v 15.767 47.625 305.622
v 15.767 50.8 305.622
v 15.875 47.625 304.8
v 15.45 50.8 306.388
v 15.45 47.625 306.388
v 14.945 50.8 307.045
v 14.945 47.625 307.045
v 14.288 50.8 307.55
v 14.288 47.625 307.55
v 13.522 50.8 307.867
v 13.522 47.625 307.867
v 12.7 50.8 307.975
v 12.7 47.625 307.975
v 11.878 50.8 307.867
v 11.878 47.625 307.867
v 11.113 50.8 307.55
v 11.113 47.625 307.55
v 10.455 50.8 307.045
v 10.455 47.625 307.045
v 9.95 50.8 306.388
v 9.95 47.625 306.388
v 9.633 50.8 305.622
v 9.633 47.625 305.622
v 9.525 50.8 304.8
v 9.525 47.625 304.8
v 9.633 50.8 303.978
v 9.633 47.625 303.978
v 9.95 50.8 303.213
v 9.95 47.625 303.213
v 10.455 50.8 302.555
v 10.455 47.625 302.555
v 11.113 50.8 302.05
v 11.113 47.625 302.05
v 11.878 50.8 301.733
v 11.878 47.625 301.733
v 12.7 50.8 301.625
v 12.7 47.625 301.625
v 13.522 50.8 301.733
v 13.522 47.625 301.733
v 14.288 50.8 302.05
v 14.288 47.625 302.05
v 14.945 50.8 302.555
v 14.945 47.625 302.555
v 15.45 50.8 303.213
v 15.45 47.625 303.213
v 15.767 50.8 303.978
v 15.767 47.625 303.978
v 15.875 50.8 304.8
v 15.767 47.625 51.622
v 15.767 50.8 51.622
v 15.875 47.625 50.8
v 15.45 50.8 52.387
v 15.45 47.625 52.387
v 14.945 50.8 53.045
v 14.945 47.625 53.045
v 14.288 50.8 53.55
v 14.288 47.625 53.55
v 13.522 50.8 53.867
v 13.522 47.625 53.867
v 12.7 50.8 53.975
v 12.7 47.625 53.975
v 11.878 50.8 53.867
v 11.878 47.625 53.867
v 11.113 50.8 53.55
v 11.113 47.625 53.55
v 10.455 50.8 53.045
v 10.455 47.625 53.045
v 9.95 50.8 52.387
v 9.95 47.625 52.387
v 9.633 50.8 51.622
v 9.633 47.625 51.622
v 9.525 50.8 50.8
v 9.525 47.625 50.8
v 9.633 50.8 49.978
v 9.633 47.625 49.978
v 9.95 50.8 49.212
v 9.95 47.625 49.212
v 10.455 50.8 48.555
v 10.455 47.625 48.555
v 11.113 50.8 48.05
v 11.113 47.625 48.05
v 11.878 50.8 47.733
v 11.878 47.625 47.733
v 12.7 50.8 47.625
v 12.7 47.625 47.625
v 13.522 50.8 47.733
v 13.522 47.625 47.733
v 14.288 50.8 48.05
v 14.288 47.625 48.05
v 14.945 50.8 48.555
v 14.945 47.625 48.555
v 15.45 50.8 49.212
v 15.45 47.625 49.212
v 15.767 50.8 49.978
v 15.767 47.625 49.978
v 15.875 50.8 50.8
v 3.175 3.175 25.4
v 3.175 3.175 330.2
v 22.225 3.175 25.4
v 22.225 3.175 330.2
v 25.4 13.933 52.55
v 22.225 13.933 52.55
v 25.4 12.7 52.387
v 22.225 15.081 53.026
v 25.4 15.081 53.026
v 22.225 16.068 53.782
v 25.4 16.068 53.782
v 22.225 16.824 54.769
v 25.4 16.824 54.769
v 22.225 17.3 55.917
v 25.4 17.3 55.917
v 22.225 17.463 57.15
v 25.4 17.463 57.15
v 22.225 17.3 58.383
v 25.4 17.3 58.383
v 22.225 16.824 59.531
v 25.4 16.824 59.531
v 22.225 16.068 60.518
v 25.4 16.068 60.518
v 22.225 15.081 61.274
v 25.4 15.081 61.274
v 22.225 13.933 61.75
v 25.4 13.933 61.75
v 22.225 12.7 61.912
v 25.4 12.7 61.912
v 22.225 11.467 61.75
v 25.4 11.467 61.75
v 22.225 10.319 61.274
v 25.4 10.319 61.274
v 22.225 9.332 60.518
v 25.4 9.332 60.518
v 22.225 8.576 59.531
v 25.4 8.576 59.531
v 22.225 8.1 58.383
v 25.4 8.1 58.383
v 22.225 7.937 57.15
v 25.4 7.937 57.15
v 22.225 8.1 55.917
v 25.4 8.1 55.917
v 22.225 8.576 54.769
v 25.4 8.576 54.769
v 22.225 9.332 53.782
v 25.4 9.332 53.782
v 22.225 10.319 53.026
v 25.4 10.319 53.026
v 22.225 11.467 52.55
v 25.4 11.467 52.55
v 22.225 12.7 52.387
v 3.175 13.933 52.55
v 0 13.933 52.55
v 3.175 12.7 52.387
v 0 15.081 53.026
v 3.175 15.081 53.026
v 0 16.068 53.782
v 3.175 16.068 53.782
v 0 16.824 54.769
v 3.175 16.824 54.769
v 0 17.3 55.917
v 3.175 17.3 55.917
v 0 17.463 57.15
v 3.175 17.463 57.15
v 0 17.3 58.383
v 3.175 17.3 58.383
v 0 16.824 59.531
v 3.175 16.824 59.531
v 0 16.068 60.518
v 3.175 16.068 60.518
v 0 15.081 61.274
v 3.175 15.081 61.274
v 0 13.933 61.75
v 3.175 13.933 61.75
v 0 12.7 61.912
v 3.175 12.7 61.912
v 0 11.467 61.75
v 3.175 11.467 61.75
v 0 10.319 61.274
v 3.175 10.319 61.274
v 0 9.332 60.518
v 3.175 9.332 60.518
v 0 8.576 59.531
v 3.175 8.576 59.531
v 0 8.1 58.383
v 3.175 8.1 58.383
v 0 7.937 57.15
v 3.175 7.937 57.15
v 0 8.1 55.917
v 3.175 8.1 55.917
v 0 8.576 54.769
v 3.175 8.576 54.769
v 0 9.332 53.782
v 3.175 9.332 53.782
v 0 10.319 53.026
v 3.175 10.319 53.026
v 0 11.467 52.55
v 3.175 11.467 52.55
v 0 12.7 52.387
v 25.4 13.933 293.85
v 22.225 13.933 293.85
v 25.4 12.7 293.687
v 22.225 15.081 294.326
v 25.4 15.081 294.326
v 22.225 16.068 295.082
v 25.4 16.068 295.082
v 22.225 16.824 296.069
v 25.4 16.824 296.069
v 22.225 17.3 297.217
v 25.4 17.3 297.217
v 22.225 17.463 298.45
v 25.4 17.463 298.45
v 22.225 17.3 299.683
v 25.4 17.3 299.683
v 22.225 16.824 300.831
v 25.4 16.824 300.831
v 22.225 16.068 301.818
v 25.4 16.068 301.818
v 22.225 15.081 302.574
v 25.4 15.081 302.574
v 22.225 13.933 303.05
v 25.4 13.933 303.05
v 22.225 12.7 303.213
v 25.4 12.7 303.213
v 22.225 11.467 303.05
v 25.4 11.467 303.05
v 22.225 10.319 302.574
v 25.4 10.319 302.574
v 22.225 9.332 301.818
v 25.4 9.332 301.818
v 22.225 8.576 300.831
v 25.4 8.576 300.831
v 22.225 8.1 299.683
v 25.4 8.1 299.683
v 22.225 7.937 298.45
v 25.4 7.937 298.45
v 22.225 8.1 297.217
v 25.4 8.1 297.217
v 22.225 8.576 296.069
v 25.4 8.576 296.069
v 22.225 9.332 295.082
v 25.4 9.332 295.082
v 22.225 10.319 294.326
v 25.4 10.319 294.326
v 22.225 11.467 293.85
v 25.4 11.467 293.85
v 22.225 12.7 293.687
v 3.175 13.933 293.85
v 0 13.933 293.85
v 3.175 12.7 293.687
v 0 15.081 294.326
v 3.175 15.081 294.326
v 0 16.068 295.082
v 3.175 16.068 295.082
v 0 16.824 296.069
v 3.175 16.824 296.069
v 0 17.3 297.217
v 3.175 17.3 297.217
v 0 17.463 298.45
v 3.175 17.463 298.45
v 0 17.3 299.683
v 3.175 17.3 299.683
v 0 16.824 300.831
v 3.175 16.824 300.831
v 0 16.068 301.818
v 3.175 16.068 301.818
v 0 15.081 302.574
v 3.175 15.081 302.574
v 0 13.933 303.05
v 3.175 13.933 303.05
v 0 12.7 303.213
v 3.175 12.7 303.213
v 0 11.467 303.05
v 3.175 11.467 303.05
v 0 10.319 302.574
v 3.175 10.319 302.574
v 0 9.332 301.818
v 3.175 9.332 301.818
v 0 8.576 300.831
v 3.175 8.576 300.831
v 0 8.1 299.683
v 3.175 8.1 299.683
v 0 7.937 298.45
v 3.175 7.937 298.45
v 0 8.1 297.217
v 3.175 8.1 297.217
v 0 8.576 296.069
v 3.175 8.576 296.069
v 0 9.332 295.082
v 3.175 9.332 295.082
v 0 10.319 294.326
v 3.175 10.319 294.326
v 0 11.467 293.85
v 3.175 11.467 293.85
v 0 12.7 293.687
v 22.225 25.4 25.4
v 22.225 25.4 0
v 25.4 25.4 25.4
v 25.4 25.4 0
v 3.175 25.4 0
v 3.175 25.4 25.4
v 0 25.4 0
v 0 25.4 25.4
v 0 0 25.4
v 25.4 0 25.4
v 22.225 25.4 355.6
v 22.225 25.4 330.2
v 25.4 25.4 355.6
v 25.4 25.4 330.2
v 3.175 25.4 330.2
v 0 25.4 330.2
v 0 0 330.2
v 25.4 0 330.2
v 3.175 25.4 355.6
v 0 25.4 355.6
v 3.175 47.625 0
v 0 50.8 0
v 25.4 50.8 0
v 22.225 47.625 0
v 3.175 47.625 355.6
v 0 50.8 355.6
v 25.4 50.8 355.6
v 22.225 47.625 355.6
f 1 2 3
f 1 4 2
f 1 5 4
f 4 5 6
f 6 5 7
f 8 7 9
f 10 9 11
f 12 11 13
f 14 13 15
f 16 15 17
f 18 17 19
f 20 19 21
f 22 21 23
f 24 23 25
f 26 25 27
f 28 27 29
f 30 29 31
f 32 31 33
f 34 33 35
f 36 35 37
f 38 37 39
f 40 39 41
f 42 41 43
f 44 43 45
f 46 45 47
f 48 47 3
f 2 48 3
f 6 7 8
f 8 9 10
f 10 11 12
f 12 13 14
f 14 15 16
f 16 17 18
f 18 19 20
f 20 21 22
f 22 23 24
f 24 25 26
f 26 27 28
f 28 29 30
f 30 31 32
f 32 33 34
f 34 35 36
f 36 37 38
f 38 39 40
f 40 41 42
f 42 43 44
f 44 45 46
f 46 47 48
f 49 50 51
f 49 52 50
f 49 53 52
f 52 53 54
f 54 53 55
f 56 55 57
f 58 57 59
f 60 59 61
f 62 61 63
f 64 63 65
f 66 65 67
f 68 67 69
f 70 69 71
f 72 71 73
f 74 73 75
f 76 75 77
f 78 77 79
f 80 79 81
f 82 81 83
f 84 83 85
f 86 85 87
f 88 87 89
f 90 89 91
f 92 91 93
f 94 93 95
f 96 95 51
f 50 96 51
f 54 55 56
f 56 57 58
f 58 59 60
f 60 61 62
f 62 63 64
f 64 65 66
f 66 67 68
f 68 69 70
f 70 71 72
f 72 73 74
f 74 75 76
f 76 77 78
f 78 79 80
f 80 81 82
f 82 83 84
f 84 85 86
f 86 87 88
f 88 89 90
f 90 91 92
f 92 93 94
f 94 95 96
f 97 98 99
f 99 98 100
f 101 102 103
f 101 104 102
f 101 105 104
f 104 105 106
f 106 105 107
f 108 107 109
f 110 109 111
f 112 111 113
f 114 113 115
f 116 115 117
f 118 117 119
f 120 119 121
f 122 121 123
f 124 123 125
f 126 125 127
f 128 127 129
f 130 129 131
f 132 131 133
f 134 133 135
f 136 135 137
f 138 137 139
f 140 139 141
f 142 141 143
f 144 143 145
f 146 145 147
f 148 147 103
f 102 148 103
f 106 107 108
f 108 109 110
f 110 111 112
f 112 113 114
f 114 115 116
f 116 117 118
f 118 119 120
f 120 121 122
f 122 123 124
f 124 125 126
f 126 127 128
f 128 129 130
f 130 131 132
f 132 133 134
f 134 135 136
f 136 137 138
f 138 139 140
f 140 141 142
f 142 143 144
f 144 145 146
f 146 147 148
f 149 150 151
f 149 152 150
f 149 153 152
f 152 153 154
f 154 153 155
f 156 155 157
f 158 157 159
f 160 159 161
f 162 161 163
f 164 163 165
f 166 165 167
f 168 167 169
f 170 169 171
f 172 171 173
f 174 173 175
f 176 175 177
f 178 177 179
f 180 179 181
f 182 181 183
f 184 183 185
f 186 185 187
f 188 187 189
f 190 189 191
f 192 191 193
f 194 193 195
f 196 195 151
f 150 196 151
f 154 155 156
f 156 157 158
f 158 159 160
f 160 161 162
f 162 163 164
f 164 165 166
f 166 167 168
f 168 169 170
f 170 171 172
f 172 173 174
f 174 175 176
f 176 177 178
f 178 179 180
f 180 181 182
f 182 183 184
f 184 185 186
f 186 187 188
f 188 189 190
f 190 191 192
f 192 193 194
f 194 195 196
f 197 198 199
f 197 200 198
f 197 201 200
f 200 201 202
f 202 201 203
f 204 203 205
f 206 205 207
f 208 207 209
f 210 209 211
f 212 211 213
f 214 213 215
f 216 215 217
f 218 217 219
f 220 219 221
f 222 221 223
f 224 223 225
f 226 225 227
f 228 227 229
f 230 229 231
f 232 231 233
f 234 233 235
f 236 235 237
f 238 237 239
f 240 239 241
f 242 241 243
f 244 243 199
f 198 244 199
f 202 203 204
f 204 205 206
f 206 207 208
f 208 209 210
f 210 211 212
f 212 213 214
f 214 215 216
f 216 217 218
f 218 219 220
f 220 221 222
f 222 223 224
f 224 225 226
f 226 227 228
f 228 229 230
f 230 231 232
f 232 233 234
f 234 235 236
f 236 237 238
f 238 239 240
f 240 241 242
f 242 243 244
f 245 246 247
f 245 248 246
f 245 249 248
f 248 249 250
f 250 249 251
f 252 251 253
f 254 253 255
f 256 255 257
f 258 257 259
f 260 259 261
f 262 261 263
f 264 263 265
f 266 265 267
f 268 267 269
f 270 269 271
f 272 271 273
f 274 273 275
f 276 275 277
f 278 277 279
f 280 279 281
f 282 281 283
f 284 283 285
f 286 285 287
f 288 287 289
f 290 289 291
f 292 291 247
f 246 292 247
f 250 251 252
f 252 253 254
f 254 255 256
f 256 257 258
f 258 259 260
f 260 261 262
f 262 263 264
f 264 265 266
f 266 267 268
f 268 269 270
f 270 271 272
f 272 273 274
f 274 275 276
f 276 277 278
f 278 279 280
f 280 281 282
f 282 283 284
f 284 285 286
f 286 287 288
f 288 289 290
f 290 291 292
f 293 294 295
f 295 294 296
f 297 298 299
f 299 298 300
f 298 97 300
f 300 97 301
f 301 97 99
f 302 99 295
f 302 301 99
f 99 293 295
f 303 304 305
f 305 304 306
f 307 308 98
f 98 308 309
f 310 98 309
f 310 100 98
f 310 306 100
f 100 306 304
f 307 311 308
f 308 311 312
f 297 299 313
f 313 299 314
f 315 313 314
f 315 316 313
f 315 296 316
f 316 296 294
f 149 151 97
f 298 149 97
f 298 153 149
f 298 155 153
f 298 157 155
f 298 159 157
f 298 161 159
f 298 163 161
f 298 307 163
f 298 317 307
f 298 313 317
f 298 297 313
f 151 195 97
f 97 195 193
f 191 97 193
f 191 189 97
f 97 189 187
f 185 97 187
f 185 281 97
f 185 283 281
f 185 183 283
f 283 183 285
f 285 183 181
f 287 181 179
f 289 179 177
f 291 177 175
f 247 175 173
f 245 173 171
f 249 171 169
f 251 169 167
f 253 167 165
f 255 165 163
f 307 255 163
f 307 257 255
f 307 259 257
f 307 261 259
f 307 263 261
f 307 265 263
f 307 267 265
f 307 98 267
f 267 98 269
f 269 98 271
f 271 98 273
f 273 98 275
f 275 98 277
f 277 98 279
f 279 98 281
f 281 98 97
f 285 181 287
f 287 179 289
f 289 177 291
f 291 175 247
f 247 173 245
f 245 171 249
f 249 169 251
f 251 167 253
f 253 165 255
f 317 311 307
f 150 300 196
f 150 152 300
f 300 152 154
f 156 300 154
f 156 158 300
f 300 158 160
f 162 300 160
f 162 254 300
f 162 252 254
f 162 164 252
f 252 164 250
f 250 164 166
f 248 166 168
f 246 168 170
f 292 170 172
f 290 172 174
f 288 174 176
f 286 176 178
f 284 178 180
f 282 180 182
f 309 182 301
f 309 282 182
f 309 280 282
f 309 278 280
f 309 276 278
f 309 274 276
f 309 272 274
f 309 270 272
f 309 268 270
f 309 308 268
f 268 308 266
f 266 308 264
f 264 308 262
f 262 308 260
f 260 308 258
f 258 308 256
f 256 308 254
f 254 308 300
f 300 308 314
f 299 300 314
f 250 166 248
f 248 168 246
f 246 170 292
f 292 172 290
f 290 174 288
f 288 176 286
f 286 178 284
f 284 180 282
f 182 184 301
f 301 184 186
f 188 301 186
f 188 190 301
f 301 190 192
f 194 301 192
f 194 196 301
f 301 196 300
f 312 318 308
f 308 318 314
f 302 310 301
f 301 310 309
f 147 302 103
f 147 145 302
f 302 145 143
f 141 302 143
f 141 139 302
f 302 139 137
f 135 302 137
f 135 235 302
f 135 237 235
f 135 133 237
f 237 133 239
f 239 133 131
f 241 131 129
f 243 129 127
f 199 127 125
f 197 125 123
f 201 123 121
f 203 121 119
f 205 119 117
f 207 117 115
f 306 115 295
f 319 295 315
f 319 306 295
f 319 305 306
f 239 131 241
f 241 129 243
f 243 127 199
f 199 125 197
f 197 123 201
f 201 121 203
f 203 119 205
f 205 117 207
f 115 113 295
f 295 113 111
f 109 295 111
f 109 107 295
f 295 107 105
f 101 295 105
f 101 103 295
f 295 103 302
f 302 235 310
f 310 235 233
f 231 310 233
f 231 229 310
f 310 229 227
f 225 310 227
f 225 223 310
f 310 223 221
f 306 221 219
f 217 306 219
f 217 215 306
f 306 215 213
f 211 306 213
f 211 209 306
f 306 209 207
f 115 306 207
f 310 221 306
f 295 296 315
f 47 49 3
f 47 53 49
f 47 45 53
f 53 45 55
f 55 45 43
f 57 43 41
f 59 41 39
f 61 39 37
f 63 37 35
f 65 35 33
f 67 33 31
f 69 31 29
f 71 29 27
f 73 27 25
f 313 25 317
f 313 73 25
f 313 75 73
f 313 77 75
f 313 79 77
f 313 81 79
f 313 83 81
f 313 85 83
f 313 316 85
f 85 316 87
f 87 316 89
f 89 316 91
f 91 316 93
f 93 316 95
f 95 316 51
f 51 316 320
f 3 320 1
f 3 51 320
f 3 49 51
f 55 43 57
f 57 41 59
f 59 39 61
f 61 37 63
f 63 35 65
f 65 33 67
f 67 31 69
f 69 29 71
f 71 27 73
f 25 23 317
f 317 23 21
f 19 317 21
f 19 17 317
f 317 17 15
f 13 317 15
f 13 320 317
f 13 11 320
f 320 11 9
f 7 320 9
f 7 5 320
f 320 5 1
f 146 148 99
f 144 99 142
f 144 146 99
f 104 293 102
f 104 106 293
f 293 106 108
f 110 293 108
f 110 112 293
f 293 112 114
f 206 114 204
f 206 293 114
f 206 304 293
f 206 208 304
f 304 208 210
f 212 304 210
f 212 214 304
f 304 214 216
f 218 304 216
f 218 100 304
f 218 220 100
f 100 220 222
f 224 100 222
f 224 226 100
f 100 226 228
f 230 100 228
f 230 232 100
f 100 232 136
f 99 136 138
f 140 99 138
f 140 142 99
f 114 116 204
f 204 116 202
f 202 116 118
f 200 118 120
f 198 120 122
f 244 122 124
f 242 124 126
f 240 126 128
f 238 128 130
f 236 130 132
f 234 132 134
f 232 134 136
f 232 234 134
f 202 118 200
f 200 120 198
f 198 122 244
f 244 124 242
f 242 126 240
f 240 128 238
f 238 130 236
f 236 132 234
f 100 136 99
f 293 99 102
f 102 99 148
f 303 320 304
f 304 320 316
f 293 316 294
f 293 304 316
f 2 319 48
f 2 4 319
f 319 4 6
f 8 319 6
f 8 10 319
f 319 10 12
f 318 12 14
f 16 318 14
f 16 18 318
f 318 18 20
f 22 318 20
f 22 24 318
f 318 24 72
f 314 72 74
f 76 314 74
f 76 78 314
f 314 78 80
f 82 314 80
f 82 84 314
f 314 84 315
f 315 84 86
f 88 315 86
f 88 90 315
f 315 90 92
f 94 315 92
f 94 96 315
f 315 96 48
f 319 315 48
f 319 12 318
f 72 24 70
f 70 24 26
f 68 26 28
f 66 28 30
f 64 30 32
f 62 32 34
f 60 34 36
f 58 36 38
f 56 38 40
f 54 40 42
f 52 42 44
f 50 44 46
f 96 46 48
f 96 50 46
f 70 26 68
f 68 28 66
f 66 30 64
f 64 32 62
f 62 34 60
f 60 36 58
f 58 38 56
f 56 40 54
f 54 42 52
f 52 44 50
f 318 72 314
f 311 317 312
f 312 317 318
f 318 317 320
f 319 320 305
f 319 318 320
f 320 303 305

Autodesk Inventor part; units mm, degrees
ref_plane "YZ Plane" through (0, 0, 0) normal (1, 0, 0) x (0, 1, 0)
ref_plane "XZ Plane" through (0, 0, 0) normal (0, 1, 0) x (-1, 0, 0)
ref_plane "XY Plane" through (0, 0, 0) normal (0, 0, 1) x (1, 0, 0)
sketch "Sketch1" plane through (0, 0, 0) normal (0, 0, 1) x (1, 0, 0)
  line L0 (0, 0) -> (25.4, 0)
  line L1 (25.4, 0) -> (25.4, 50.8)
  line L2 (25.4, 50.8) -> (0, 50.8)
  line L3 (0, 50.8) -> (0, 0)
  dimension "d0" = 25.4
  dimension "d1" = 50.8
extrude "Extrusion1" add sketch "Sketch1" along normal blind 355.6
shell "Shell1" thickness 3.175 removed faces 2 at (16.9333, 16.9333, 0) at (8.4667, 33.8667, 355.6)
sketch "Sketch2" plane through (25.4, 0, 0) normal (1, 0, 0) x (0, 0, -1)
  line L0 (-355.6, 0) -> (-330.2, 0)
  line L1 (-330.2, 0) -> (-330.2, 25.4)
  line L2 (-330.2, 25.4) -> (-355.6, 25.4)
  line L3 (-355.6, 25.4) -> (-355.6, 0)
  line L4 (0, 0) -> (-25.4, 0)
  line L5 (-25.4, 0) -> (-25.4, 25.4)
  line L6 (-25.4, 25.4) -> (0, 25.4)
  line L7 (0, 25.4) -> (0, 0)
  dimension "d5" = 25.4
extrude "Extrusion2" cut sketch "Sketch2" against normal through all
sketch "Sketch3" plane through (25.4, 50.8, 355.6) normal (1, 0, 0) x (0, 0, -1)
  line L0 (330.2, -50.8) -> (330.2, -25.4) projected
  line L1 (25.4, -25.4) -> (25.4, -50.8) projected
  line L2 (330.2, -50.8) -> (25.4, -50.8) projected
  circle A0 centre (57.15, -38.1) radius 4.7625
  circle A1 centre (298.45, -38.1) radius 4.7625
  point P0 (355.6, -50.8)
  dimension "d8" = 9.525
  dimension "d9" = 31.75
  dimension "d10" = 12.7
  dimension "d11" = 12.7
  dimension "d12" = 31.75
extrude "Extrusion3" cut sketch "Sketch3" against normal through all
sketch "Sketch4" plane through (0, 50.8, 0) normal (0, 1, 0) x (1, 0, 0)
  line L0 (0, -355.6) -> (25.4, -355.6)
  line L1 (25.4, 0) -> (0, 0) projected
  line L2 (0, 0) -> (0, -355.6) projected
  circle A0 centre (12.7, -50.8) radius 3.175
  circle A1 centre (12.7, -304.8) radius 3.175
  line L3 (12.7, 0) -> (12.7, -50.8) construction
  line L4 (12.7, -50.8) -> (12.7, -304.8) construction
  line L5 (12.7, -304.8) -> (12.7, -355.6) construction
  dimension "d15" = 6.35
  dimension "d16" = 12.7
  dimension "d17" = 50.8
  dimension "d18" = 254
  dimension "d19" = 50.8
extrude "Extrusion4" cut sketch "Sketch4" against normal up to next
properties part number "Frame_MainHorizontalMount" material "Aluminum-6061"
